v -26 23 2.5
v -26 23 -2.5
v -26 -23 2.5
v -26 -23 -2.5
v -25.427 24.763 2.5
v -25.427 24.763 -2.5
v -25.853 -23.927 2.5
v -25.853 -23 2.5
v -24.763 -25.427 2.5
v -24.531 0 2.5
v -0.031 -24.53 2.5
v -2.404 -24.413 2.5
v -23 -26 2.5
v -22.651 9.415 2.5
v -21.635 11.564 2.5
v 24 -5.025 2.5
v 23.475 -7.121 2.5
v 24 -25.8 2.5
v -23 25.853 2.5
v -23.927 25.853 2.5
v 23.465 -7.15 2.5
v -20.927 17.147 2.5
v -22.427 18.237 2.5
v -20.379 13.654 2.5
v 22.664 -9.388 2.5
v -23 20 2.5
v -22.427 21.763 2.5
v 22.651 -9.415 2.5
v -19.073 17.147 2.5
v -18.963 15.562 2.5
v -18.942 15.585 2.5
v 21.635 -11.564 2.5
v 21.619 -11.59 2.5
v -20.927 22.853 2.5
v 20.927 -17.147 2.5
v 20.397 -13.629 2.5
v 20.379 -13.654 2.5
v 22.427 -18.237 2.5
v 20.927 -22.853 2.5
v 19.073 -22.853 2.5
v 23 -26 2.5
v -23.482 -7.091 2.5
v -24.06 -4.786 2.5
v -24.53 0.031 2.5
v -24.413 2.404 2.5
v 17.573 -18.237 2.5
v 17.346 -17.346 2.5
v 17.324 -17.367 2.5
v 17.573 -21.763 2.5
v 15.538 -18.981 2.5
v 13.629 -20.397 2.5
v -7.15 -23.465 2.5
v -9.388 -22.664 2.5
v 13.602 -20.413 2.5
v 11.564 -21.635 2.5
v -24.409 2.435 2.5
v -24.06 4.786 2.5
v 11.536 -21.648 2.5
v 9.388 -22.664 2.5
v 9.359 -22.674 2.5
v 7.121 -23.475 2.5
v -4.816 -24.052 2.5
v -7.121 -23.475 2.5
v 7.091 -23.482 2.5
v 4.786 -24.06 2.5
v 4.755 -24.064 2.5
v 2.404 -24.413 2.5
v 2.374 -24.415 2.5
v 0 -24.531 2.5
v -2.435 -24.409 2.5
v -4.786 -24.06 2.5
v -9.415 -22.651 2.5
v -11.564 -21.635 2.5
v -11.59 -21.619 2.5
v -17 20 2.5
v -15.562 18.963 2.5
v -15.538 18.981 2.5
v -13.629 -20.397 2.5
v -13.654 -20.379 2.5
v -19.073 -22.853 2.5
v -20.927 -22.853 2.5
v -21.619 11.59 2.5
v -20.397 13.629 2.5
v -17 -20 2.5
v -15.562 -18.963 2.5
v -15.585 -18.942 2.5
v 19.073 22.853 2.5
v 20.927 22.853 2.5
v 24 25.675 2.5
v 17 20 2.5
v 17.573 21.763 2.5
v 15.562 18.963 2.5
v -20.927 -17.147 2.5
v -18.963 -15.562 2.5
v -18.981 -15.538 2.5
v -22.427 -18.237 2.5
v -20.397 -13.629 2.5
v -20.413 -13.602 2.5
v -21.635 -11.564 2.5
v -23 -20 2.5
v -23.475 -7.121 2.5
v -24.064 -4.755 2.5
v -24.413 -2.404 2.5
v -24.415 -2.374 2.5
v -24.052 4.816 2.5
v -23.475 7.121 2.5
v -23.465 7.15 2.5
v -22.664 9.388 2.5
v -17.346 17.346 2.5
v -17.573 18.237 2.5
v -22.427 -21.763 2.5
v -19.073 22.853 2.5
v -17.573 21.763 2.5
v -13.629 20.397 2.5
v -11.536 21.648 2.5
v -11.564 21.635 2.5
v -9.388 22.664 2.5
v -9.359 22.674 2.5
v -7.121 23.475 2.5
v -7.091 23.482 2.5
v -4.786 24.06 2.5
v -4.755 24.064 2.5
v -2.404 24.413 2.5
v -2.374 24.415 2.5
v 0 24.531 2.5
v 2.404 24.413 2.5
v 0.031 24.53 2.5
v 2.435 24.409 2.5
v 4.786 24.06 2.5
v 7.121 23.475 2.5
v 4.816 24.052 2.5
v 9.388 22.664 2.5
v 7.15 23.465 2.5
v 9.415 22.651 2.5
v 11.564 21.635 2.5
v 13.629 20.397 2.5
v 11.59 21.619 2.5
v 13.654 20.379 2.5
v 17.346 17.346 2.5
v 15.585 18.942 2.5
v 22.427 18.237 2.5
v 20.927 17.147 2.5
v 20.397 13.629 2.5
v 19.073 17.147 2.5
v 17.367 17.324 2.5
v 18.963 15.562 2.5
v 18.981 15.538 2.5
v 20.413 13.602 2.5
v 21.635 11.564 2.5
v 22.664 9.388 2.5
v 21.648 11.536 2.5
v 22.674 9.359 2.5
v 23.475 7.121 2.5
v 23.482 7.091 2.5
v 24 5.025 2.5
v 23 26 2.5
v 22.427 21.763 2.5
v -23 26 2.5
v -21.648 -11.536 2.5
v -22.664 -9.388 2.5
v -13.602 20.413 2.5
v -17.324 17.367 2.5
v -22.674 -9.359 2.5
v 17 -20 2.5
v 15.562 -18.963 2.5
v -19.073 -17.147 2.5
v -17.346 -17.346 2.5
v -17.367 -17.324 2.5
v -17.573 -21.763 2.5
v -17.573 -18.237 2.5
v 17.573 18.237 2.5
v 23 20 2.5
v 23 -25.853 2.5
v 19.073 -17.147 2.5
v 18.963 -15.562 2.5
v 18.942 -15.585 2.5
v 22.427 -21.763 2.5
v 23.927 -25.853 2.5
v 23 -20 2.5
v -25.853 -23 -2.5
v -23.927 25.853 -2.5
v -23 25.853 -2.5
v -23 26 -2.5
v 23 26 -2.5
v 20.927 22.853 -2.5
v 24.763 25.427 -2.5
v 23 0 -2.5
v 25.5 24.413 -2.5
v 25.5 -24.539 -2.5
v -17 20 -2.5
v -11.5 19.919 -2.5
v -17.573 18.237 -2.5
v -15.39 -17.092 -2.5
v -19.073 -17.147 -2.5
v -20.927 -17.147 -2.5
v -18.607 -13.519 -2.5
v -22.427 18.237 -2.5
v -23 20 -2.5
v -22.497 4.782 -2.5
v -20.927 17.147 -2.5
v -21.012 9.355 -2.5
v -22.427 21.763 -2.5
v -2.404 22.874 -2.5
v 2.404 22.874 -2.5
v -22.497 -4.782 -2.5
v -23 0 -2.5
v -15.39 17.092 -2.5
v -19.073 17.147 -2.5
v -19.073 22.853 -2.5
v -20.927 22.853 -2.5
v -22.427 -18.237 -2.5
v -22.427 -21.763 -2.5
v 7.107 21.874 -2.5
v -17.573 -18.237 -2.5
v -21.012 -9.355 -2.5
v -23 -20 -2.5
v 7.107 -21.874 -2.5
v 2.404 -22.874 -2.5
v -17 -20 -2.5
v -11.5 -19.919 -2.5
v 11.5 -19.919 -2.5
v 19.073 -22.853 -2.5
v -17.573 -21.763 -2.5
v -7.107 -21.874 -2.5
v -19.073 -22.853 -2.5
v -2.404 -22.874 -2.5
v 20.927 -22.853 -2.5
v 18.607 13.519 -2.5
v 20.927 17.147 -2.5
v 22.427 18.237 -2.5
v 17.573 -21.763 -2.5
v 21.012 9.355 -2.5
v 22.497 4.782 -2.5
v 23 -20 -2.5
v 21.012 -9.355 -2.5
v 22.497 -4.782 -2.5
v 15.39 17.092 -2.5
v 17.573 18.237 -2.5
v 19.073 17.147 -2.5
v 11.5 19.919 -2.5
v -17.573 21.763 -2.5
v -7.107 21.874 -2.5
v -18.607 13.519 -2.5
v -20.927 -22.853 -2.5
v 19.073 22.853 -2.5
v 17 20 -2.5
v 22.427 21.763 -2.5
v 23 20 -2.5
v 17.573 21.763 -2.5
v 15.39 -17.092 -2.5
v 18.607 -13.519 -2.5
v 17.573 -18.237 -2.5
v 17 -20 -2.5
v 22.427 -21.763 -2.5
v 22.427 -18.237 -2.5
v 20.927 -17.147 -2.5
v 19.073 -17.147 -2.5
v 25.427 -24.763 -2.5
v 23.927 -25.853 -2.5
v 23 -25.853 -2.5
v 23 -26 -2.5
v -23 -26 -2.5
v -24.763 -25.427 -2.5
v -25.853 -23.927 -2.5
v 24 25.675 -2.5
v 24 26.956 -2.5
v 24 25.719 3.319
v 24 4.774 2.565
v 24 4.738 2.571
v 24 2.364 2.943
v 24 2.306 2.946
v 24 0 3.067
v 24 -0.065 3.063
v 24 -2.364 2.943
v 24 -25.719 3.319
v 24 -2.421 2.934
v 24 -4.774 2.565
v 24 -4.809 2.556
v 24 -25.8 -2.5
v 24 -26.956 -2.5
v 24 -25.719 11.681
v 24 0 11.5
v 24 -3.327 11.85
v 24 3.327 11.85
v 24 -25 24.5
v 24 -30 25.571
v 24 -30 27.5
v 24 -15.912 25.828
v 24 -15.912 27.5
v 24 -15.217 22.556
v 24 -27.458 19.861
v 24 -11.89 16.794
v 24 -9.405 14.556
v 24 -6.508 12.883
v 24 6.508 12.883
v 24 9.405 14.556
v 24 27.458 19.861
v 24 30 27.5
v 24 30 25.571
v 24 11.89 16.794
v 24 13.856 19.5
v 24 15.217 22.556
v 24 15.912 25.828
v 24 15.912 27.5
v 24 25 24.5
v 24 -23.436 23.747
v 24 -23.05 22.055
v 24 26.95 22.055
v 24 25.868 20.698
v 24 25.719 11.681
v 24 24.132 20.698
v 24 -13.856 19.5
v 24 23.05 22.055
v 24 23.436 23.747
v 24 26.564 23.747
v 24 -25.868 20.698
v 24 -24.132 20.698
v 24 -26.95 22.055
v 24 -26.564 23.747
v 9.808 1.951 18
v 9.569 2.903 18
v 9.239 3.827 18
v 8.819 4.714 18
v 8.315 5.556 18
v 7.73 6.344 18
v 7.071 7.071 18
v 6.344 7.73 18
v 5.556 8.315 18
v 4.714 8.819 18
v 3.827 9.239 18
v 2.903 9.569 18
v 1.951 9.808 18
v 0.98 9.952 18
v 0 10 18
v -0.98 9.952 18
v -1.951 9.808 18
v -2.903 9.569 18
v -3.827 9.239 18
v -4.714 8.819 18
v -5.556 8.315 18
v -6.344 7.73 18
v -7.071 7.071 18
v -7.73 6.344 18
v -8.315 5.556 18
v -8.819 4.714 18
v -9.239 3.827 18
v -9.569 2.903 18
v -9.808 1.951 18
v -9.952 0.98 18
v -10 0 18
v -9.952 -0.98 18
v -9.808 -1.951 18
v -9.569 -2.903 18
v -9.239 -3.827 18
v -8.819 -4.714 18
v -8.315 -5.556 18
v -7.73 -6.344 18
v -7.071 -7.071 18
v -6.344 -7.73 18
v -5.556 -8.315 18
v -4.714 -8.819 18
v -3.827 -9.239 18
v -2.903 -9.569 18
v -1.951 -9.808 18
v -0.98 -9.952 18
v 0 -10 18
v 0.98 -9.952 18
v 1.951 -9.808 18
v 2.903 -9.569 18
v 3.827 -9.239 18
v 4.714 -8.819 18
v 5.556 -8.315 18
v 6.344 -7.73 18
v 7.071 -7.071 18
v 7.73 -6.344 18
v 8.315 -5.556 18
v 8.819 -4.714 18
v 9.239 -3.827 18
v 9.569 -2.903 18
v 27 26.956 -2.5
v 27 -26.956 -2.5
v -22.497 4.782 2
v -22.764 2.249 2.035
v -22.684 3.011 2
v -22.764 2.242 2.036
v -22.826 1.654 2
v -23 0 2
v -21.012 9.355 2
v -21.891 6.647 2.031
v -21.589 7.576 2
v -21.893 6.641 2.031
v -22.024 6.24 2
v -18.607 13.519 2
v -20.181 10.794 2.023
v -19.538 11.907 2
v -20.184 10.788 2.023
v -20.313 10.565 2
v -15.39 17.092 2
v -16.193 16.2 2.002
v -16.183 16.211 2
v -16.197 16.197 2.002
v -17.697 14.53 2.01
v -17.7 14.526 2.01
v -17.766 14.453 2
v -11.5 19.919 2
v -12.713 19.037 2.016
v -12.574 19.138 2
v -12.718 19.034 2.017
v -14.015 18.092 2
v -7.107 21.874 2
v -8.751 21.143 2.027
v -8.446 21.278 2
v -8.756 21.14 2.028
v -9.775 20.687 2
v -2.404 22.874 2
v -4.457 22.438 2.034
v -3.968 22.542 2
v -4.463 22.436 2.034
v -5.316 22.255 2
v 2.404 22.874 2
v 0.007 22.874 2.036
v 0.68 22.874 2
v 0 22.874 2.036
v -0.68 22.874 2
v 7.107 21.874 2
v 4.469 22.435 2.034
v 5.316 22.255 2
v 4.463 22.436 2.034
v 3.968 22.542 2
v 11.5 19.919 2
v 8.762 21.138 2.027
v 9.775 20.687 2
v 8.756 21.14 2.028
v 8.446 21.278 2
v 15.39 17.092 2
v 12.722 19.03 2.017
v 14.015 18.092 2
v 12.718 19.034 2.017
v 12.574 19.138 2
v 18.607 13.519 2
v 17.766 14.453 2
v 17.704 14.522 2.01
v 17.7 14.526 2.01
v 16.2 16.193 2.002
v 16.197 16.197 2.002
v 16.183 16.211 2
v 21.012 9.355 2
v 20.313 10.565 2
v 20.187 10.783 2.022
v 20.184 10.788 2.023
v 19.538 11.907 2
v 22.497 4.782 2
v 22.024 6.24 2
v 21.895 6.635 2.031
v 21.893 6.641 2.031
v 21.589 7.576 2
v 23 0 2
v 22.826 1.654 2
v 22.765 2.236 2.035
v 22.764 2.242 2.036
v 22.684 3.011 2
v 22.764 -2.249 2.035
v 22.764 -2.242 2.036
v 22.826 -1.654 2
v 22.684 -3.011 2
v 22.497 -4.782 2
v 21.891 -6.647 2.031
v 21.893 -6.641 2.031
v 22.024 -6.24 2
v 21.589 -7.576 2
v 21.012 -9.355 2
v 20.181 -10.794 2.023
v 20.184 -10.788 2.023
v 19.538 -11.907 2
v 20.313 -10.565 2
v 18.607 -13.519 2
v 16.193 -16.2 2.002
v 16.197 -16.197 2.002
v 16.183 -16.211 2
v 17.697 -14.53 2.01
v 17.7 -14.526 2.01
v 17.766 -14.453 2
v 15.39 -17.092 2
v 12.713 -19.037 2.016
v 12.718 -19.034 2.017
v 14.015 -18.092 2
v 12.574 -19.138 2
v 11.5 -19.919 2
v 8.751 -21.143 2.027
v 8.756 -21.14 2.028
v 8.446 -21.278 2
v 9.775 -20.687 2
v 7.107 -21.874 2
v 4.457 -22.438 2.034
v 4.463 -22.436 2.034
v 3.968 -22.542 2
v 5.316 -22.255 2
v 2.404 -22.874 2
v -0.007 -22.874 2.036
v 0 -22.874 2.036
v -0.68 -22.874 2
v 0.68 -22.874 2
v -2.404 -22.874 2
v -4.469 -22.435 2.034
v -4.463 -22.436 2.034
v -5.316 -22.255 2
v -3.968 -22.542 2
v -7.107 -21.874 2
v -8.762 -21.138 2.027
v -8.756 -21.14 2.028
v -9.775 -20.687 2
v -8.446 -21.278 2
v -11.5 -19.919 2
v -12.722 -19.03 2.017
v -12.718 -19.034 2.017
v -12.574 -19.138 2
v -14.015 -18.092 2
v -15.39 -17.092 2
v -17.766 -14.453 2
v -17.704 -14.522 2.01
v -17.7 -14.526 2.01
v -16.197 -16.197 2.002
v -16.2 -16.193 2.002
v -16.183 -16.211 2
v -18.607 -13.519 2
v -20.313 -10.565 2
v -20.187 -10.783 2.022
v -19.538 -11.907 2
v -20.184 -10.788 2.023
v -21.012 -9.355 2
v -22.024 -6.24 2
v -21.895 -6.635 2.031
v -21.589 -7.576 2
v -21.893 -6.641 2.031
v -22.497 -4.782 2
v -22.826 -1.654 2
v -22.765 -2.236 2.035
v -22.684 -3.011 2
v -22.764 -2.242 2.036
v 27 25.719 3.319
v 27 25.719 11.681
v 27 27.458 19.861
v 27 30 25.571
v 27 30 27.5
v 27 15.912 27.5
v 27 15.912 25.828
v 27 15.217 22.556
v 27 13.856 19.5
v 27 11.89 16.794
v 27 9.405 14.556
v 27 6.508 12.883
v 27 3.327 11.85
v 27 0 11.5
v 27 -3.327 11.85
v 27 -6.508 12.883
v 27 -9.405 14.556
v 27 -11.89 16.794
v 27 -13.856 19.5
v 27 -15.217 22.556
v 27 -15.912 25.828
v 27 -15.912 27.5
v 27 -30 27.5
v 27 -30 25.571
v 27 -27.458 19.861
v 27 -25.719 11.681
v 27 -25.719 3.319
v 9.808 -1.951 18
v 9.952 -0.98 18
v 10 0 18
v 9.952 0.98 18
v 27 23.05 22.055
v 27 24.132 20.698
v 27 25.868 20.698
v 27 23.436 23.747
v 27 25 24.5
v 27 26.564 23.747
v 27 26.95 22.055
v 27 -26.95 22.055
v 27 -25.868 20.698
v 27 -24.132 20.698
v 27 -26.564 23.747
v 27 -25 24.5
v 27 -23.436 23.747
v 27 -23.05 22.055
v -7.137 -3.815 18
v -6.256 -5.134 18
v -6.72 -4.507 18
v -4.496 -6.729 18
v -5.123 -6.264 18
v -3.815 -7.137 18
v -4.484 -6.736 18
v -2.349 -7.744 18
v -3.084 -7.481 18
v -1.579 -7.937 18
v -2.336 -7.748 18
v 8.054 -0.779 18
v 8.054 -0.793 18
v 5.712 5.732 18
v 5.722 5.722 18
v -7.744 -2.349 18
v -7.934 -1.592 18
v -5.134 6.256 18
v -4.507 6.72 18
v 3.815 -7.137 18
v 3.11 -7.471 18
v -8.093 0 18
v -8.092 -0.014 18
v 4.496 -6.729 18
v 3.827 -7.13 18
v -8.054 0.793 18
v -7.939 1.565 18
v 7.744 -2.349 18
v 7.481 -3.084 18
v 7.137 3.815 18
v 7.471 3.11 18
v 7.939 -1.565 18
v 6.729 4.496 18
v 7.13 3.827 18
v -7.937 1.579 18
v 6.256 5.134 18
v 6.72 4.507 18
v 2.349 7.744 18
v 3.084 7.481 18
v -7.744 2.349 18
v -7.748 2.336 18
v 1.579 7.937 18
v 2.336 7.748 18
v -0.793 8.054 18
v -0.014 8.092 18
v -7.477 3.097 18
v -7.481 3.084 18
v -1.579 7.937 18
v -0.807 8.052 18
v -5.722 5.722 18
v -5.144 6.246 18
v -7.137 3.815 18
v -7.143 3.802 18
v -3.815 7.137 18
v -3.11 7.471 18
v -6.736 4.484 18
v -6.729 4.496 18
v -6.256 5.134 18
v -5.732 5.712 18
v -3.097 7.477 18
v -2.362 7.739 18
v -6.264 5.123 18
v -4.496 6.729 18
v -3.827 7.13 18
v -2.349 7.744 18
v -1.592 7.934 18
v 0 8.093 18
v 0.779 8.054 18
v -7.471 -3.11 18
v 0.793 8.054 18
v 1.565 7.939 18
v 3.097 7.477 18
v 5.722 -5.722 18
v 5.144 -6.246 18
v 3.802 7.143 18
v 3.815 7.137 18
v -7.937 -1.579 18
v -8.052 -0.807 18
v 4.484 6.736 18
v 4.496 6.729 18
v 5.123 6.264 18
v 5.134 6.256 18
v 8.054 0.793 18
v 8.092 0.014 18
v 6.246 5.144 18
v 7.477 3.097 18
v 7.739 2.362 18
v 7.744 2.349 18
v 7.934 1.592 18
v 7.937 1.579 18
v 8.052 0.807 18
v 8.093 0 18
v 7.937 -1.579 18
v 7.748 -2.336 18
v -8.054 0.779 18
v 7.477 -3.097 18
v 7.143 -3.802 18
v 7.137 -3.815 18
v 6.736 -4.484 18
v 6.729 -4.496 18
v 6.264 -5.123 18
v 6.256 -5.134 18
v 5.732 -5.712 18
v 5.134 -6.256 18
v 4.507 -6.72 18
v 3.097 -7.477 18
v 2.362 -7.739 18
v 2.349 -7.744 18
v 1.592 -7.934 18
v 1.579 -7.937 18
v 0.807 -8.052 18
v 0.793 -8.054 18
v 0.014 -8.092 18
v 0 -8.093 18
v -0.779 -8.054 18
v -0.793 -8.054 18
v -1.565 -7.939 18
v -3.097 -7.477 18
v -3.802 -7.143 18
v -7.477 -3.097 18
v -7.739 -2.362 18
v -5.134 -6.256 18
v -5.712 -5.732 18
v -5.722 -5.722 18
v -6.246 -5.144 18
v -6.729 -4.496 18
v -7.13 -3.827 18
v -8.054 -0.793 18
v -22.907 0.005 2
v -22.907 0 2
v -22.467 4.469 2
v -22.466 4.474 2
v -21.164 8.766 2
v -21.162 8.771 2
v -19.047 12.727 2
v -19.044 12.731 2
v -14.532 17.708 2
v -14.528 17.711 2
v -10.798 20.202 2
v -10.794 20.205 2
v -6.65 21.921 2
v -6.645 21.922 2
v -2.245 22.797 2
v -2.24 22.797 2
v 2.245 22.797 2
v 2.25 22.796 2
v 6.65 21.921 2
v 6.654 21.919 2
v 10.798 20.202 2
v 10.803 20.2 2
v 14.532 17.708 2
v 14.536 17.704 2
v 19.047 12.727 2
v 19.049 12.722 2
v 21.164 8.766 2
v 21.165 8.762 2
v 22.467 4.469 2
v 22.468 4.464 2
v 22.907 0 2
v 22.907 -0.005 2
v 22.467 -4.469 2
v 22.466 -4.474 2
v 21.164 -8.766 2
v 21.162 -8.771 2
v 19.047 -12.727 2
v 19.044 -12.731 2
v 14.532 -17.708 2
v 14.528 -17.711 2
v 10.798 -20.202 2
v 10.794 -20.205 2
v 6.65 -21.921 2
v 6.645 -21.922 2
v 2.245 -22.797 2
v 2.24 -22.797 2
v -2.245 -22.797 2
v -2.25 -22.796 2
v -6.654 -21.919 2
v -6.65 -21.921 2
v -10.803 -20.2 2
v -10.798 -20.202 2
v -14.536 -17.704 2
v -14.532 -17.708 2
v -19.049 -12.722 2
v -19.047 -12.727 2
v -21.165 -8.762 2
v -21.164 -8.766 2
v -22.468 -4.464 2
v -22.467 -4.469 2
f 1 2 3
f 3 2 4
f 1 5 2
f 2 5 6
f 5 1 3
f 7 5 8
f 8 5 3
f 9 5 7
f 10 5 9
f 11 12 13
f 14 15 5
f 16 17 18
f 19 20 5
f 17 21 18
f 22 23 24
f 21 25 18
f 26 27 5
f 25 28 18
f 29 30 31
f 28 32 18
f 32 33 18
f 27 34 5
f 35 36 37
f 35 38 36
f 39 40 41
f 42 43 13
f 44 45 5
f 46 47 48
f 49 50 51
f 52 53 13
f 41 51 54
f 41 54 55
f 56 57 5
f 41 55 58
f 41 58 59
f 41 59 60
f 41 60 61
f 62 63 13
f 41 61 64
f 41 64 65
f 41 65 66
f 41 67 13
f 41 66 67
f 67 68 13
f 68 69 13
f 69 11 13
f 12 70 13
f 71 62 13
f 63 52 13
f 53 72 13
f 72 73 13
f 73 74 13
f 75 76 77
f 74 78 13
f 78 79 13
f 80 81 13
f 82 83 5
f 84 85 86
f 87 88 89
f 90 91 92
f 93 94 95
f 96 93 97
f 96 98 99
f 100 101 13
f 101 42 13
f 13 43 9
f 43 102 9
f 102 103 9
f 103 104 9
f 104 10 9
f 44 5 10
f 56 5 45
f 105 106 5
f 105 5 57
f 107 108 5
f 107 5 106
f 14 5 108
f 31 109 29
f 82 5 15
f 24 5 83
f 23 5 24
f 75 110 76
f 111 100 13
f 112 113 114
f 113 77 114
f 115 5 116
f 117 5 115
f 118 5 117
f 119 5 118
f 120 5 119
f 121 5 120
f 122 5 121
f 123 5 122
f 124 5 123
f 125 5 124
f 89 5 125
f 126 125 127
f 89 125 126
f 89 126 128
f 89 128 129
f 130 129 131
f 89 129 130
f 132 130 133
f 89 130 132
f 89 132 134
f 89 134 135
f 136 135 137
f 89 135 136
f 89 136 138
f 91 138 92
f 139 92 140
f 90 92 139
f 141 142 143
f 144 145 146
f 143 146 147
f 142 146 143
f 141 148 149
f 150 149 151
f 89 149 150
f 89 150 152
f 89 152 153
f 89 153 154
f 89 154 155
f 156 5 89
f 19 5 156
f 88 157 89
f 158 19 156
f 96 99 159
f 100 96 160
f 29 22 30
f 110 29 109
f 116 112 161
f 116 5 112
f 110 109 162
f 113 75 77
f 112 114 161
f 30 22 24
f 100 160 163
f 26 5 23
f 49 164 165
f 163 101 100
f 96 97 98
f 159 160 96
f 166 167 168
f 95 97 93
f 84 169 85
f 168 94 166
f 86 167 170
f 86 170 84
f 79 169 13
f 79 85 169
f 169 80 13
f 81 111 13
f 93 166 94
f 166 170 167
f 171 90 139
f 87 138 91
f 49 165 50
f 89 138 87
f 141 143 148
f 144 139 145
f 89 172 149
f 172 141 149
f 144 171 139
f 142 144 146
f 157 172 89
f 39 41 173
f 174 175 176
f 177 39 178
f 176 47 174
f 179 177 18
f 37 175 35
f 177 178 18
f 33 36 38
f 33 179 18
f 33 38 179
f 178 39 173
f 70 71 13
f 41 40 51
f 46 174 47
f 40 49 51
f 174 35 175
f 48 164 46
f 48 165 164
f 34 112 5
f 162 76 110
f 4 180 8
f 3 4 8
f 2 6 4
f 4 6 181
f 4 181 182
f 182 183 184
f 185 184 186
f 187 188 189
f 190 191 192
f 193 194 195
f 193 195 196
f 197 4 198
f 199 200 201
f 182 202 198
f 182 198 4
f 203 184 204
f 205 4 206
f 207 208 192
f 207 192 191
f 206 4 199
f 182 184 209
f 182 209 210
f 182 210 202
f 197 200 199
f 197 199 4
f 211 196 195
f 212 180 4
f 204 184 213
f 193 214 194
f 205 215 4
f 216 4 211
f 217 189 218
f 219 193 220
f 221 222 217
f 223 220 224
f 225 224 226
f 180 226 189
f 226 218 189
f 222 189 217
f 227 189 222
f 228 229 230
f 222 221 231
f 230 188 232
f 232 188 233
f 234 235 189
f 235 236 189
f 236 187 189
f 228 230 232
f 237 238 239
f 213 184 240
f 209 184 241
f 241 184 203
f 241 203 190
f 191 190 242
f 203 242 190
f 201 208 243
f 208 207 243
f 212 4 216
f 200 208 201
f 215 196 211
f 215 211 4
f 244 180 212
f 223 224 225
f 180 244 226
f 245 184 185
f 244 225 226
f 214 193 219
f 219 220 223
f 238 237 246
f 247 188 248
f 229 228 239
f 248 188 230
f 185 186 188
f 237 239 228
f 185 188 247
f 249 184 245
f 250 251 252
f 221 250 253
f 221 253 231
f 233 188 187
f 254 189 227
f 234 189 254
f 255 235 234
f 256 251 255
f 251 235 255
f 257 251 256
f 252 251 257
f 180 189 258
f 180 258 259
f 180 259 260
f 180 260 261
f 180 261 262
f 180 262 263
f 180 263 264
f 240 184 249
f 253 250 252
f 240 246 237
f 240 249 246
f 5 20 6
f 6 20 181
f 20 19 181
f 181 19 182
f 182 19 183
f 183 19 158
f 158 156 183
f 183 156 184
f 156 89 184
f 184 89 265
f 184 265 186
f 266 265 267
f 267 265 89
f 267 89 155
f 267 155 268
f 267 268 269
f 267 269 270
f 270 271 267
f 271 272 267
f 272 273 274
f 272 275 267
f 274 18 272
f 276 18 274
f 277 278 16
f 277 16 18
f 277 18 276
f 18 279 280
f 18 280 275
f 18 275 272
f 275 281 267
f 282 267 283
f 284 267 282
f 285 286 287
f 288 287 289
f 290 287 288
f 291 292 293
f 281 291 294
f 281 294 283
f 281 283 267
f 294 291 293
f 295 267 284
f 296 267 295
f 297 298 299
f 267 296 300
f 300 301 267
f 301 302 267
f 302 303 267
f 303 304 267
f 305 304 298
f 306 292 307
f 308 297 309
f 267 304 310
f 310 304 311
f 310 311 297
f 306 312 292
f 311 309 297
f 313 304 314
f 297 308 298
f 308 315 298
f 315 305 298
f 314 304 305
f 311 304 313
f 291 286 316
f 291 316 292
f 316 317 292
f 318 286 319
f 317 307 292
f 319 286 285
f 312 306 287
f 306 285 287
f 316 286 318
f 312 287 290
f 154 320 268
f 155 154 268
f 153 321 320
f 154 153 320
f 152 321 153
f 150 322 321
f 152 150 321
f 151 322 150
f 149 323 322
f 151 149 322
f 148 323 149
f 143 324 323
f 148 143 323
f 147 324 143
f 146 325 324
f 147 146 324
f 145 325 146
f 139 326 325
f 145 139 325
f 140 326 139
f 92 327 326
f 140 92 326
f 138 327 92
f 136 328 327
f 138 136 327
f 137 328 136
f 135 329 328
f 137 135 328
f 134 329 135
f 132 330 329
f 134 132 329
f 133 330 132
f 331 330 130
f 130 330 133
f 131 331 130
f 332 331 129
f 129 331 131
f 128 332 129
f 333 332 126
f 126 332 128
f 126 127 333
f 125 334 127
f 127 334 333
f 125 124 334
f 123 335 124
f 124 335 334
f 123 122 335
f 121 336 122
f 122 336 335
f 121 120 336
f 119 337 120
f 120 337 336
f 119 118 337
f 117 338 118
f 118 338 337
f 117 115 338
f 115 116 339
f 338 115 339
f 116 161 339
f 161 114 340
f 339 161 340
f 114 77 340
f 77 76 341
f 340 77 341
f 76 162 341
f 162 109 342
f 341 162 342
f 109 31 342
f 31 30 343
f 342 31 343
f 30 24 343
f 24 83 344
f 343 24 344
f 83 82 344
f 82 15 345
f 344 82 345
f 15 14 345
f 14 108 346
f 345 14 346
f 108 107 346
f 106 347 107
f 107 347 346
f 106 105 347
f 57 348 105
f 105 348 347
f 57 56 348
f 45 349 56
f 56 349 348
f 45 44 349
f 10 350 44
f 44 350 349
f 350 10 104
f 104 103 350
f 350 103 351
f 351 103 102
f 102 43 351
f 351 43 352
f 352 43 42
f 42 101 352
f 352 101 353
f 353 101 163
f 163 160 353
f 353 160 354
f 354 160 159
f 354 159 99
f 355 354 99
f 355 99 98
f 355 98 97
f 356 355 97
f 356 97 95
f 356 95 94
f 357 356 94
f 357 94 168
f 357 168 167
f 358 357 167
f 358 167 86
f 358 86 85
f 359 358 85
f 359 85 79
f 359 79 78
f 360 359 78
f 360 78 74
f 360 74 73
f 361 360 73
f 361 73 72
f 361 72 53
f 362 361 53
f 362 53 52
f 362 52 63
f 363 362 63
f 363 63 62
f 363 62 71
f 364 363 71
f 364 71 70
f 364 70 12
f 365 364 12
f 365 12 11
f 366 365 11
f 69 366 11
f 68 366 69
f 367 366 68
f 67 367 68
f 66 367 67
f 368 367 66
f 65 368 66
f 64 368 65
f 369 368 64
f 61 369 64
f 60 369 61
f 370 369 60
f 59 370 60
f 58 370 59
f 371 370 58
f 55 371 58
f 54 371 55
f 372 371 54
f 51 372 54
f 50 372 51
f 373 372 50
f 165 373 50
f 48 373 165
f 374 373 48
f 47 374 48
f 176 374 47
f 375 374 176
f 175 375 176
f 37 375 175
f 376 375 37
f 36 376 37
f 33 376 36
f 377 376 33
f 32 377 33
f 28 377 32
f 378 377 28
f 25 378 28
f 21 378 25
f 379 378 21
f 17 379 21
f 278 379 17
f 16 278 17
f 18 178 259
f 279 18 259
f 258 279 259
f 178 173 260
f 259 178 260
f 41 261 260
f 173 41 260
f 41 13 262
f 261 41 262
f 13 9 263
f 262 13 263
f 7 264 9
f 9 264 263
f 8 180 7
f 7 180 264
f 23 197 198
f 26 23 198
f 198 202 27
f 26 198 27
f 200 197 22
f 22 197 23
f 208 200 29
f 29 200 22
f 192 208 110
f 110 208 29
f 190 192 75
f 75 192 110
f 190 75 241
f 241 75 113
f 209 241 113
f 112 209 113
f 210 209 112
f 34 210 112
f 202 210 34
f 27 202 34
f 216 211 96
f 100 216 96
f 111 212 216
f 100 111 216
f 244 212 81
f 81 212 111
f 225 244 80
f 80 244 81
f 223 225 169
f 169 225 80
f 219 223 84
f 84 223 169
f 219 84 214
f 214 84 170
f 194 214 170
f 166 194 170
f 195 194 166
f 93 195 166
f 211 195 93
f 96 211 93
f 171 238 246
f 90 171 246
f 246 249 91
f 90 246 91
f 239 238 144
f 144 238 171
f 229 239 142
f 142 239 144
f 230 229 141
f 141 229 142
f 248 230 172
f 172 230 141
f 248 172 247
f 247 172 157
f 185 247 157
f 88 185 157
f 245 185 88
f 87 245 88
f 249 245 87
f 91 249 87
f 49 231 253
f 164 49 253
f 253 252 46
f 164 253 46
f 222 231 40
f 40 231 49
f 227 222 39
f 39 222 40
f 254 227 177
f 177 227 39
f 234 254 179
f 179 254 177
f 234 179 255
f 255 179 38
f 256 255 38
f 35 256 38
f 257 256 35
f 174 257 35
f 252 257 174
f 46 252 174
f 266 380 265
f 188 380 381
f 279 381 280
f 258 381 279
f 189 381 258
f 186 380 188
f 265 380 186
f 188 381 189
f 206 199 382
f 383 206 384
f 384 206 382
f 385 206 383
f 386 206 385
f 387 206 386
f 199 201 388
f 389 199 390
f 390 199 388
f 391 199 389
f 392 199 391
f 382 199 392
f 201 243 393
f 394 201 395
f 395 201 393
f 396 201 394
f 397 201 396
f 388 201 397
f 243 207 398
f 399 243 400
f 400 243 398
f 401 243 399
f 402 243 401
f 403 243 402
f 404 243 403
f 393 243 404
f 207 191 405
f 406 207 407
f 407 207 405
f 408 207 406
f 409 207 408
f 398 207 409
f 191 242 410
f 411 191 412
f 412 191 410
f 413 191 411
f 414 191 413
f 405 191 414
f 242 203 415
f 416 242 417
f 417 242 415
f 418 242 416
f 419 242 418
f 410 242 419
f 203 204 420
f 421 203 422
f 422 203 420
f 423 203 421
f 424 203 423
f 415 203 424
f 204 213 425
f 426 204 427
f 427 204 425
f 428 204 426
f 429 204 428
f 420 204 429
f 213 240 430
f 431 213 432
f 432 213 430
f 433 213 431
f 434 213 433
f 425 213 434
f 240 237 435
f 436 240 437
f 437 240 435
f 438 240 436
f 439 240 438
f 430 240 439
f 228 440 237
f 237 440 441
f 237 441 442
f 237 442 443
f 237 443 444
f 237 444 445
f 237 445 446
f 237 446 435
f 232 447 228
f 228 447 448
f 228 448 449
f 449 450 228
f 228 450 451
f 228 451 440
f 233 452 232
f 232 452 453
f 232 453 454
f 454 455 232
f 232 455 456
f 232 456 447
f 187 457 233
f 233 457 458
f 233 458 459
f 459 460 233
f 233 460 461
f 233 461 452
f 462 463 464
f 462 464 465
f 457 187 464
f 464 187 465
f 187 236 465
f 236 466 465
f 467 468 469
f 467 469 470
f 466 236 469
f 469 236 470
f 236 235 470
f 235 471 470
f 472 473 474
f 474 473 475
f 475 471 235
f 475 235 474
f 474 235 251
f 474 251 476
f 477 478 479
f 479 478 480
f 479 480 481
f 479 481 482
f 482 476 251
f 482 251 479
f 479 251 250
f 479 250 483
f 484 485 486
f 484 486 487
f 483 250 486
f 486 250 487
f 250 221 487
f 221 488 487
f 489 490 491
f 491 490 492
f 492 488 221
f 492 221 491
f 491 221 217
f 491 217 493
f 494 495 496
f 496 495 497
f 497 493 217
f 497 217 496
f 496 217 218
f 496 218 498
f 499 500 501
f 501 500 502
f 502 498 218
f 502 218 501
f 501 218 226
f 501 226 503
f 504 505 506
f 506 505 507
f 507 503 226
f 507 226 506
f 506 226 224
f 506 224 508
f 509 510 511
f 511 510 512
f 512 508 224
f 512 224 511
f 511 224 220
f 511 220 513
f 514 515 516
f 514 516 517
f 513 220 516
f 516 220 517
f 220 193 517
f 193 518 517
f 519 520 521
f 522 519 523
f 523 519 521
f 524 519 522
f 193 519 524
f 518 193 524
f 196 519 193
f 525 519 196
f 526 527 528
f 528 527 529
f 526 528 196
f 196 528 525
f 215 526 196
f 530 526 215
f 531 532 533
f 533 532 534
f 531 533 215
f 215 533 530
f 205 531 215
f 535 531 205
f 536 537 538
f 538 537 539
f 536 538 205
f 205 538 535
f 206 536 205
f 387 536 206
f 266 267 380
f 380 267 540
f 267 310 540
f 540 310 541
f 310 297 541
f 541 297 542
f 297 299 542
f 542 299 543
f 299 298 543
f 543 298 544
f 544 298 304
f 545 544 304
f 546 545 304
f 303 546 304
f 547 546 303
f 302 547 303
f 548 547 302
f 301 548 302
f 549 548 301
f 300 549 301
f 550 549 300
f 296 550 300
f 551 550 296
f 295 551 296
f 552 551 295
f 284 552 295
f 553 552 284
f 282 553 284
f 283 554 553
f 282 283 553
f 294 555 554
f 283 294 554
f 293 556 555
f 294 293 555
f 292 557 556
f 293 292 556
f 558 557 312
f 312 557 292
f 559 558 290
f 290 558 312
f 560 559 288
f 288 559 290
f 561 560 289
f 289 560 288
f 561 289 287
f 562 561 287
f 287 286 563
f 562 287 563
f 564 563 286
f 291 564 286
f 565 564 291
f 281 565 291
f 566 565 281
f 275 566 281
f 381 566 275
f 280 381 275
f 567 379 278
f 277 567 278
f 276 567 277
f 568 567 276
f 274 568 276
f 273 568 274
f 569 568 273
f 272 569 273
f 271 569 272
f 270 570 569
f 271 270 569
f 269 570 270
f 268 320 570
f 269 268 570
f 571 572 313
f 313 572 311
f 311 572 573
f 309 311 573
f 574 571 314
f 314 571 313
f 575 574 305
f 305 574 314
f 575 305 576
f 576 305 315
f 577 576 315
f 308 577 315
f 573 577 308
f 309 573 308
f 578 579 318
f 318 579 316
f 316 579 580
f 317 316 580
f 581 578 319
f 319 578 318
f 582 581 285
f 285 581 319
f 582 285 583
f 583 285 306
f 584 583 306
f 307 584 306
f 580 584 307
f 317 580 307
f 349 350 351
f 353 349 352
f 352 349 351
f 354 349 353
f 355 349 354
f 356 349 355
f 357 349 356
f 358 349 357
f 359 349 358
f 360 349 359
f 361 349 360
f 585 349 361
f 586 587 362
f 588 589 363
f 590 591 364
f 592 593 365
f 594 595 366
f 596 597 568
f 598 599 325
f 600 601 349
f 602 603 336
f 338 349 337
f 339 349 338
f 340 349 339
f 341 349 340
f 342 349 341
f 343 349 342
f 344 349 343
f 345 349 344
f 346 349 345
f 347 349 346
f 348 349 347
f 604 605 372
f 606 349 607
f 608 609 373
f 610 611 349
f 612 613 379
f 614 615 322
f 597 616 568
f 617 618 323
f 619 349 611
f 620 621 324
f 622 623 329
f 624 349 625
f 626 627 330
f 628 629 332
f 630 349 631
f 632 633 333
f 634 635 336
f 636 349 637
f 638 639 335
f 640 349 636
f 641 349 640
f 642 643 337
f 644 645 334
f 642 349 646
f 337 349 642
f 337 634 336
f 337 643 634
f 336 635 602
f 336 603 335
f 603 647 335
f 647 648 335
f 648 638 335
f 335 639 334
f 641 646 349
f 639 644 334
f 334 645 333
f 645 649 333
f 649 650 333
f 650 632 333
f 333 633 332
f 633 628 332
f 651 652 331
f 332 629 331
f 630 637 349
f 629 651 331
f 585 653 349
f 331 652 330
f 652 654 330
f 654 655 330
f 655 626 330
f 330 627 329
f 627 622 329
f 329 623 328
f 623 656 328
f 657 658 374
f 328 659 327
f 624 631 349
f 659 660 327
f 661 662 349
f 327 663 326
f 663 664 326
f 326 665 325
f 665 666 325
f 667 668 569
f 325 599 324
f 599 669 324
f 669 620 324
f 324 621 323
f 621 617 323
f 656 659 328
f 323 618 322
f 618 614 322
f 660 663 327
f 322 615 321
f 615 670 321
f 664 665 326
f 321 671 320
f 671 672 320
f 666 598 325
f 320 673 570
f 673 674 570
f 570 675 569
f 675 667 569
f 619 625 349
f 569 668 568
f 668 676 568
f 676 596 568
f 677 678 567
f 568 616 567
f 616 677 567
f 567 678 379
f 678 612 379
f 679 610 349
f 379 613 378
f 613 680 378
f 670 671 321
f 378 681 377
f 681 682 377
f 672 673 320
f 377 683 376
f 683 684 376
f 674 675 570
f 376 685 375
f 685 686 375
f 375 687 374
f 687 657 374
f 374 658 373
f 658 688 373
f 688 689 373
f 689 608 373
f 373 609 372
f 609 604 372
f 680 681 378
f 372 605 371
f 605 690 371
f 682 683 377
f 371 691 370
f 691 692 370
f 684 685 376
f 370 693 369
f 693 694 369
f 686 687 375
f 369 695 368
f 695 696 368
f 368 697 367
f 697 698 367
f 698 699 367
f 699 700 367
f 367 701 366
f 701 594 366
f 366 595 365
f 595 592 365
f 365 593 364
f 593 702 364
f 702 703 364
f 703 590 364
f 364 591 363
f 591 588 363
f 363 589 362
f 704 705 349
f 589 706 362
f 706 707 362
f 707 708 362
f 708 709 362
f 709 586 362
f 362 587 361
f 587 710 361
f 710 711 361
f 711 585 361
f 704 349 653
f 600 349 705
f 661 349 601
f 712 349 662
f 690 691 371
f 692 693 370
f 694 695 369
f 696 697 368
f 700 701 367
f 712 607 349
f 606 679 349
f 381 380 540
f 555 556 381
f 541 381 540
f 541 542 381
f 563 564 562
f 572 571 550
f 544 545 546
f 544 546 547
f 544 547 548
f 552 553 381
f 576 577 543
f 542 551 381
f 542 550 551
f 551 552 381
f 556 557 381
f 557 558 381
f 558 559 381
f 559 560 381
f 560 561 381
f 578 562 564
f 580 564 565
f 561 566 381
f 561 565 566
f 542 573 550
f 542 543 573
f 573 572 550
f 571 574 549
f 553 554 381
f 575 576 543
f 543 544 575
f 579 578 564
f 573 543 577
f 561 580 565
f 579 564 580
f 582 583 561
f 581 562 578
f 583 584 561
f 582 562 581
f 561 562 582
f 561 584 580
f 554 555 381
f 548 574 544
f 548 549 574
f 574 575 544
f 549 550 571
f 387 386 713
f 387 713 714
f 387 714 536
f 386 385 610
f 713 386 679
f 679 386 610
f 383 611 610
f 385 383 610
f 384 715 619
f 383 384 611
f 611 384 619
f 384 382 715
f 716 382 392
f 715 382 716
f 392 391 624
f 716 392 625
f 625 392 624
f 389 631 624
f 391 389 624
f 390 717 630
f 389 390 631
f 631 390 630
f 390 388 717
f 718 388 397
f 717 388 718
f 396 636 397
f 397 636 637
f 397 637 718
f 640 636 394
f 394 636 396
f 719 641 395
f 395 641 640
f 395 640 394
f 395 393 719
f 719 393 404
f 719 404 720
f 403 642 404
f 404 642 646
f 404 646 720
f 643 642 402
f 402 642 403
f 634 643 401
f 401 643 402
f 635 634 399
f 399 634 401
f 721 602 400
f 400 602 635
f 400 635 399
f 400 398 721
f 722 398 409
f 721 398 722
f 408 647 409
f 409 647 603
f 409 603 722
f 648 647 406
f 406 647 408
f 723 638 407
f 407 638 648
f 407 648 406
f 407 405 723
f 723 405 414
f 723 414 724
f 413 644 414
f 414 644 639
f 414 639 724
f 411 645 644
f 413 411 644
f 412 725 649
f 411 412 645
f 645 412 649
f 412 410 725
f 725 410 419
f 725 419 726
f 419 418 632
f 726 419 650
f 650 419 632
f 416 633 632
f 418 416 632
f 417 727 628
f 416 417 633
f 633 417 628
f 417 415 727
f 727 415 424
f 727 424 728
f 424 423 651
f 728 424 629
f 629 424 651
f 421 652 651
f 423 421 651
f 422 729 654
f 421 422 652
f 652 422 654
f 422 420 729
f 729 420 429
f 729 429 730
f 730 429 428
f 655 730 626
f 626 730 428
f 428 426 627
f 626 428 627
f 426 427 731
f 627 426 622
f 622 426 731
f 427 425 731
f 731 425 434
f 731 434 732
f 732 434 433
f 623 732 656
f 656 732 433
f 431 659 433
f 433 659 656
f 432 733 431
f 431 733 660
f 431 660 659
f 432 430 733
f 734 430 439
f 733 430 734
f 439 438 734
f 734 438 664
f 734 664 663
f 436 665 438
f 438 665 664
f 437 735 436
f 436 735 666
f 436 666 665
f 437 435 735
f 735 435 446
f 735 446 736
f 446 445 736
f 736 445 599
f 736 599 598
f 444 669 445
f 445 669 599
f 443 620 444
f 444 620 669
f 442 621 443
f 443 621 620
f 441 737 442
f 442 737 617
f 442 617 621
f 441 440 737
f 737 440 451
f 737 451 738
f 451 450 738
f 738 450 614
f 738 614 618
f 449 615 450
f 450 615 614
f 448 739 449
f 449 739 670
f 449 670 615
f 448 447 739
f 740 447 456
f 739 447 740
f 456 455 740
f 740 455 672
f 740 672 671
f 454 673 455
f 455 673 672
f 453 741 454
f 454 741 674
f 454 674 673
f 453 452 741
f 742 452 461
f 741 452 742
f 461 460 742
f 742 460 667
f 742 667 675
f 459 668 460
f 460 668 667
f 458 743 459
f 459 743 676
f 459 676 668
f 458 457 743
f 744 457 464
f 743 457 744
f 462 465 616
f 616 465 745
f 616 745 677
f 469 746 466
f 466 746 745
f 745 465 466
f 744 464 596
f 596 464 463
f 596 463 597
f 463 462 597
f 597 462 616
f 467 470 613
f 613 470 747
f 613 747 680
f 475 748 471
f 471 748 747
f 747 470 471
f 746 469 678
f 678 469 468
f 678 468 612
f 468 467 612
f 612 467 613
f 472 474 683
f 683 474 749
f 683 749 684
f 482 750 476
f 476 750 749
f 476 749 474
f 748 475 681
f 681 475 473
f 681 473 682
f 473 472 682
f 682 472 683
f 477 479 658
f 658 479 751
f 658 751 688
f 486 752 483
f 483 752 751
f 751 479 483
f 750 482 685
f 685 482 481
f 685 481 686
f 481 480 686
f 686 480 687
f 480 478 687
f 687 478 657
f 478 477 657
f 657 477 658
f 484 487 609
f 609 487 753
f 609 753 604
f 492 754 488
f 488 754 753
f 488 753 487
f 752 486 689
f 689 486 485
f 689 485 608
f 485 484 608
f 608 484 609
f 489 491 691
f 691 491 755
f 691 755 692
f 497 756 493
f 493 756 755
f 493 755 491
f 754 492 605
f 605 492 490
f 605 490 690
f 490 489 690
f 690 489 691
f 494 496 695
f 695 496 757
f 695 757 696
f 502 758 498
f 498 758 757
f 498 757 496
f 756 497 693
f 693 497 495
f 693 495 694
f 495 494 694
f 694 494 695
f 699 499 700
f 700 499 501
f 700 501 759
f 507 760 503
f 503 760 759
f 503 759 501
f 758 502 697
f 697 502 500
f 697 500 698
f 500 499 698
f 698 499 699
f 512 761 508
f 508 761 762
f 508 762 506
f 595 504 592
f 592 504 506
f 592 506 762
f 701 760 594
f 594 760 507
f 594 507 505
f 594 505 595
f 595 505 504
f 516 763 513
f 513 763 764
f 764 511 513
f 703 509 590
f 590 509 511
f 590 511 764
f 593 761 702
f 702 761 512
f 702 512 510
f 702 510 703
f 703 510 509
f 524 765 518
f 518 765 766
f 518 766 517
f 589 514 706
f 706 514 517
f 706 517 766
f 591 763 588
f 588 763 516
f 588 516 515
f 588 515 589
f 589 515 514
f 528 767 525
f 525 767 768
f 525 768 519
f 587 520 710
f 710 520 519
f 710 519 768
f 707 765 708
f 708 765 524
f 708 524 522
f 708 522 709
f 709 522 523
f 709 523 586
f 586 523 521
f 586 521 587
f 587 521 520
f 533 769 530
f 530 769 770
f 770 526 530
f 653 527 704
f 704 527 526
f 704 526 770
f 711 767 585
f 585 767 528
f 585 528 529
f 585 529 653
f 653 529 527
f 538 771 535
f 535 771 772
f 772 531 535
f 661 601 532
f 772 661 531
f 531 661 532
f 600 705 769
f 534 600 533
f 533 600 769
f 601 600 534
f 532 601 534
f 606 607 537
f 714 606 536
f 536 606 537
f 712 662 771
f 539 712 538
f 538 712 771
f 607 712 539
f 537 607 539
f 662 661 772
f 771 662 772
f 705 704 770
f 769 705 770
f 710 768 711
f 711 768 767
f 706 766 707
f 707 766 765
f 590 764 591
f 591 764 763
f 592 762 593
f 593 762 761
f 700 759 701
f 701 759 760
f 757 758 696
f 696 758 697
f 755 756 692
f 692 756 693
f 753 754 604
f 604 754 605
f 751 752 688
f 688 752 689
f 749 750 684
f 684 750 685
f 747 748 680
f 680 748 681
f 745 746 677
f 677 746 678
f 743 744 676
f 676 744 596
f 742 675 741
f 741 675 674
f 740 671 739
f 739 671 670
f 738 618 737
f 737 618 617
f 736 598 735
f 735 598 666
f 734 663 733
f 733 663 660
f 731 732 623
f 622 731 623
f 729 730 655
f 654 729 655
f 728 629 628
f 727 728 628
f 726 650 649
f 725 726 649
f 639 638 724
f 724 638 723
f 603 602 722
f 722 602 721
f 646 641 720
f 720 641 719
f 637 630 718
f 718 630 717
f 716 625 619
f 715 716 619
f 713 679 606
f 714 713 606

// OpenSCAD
// file: inc/functions.scad
// PRUSA iteration3
// Functions used in many files
// GNU GPL v3
// Josef Průša <josefprusa@me.com>
// Václav 'ax' Hůla <axtheb@gmail.com>
// Vlnofka <>
// http://www.reprap.org/wiki/Prusa_Mendel
// http://github.com/prusajr/PrusaMendel

module roundcorner(diameter){
	difference(){
		cube(size = [diameter,diameter,99], center = false);
		translate(v = [diameter, diameter, 0]) cylinder(h = 100, r=diameter, center=true);
	}
}
module nut(d,h,horizontal=true){
    cornerdiameter =  (d / 2) / cos (180 / 6);
    cylinder(h = h, r = cornerdiameter, $fn = 6);
    if(horizontal){
        for(i = [1:6]){
            rotate([0,0,60*i]) translate([-cornerdiameter-0.2,0,0]) rotate([0,0,-45]) cube([2,2,h]);
        }
    }
}

// Based on nophead research
module polyhole(d, h, center=false) {
    n = max(round(2 * d),3);
    rotate([0,0,180])
        cylinder(h = h, r = (d / 2) / cos (180 / n), $fn = n);
}

// make it interchangeable between this and cylinder
module cylinder_poly(r, h, center=false){
    polyhole(d=r*2, h=h, center=center);
}

module fillet(radius, height=100, $fn=0) {
    //this creates acutal fillet
    translate([-radius, -radius, -height/2-0.01])
        difference() {
            cube([radius*2, radius*2, height+0.02]);
            cylinder(r=radius, h=height+0.02, $fn=$fn);
        }
}

module cube_fillet(size, radius=-1, vertical=[3,3,3,3], top=[0,0,0,0], bottom=[0,0,0,0], center=false, $fn=0){
    //
    if (center) {
        cube_fillet_inside(size, radius, vertical, top, bottom, $fn);
    } else {
        translate([size[0]/2, size[1]/2, size[2]/2])
            cube_fillet_inside(size, radius, vertical, top, bottom, $fn);
    }
}

module cube_negative_fillet(size, radius=-1, vertical=[3,3,3,3], top=[0,0,0,0], bottom=[0,0,0,0], $fn=0){

    j=[1,0,1,0];

    for (i=[0:3]) {
        if (radius > -1) {
            rotate([0, 0, 90*i]) translate([size[1-j[i]]/2, size[j[i]]/2, 0]) fillet(radius, size[2], $fn=$fn);
        } else {
            rotate([0, 0, 90*i]) translate([size[1-j[i]]/2, size[j[i]]/2, 0]) fillet(vertical[i], size[2], $fn=$fn);
        }
        rotate([90*i, -90, 0]) translate([size[2]/2, size[j[i]]/2, 0 ]) fillet(top[i], size[1-j[i]], $fn=$fn);
        rotate([90*(4-i), 90, 0]) translate([size[2]/2, size[j[i]]/2, 0]) fillet(bottom[i], size[1-j[i]], $fn=$fn);

    }
}

module cube_fillet_inside(size, radius=-1, vertical=[3,3,3,3], top=[0,0,0,0], bottom=[0,0,0,0], $fn=0){
    //makes CENTERED cube with round corners
    // if you give it radius, it will fillet vertical corners.
    //othervise use vertical, top, bottom arrays
    //when viewed from top, it starts in upper right corner (+x,+y quadrant) , goes counterclockwise
    //top/bottom fillet starts in direction of Y axis and goes CCW too


    if (radius == 0) {
        cube(size, center=true);
    } else {
        difference() {
            cube(size, center=true);
            cube_negative_fillet(size, radius, vertical, top, bottom, $fn);
        }
    }
}


module nema17(places=[1,1,1,1], size=15.5, h=10, holes=false, shadow=false, $fn=24){
    for (i=[0:3]) {
        if (places[i] == 1) {
            rotate([0, 0, 90*i]) translate([size, size, 0]) {
                if (holes) {
                    #rotate([0, 0, -90*i])  translate([0,0,-10]) screw(r=1.7, slant=false, head_drop=13, $fn=$fn, h=h+12);
                } else {
                    rotate([0, 0, -90*i]) cylinder(h=h, r=5.5, $fn=$fn);
                }
            }
        }
    }
    if (shadow != false) {
        %translate ([0, 0, shadow+21+3]) cube([42,42,42], center = true);
    //flange
        %translate ([0, 0, shadow+21+3-21-1]) cylinder(r=11,h=2, center = true, $fn=20);
    //shaft
        %translate ([0, 0, shadow+21+3-21-7]) cylinder(r=2.5,h=14, center = true);
    }
}

module screw(h=20, r=2, r_head=3.5, head_drop=0, slant=true, poly=false, $fn=0){
    //makes screw with head
    //for substraction as screw hole
    if (poly) {
        cylinder_poly(h=h, r=r, $fn=$fn);
    } else {
        cylinder(h=h, r=r, $fn=$fn);
    }
    if (slant) {
        translate([0, 0, head_drop-0.01]) cylinder(h=r_head, r2=0, r1=r_head, $fn=$fn);
    }

    if (head_drop > 0) {
        translate([0, 0, -0.01]) cylinder(h=head_drop+0.01, r=r_head, $fn=$fn);
    }
}
module screw_cylinder(r_head=5.25,r=3.25,head_drop=6.2,slant=false){
	screw(r_head=r_head,head_drop=head_drop,r=r, slant=slant);

}

//screw_cylinder();
//cube_fillet([10,20,30], vertical=[3,2,0,0], top=[3,2,0,5], bottom=[3,2,0,5]);
//cube_fillet([10,20,30], radius=2, top=[7,2,7,2]);
// file: inc/metric.scad
// PRUSA iteration3
// Default metric sizes
// GNU GPL v3
// Josef Průša <josefprusa@me.com>
// http://www.reprap.org/wiki/Prusa_Mendel
// http://github.com/prusajr/PrusaMendel

// DONT CHANGE THIS FILE! ALTER VALUES IN CONFIGURATION.SCAD INSTEAD

// RODS

threaded_rod_diameter = 8.7;
threaded_rod_diameter_horizontal = 8.7;
smooth_bar_diameter = 8;
smooth_bar_diameter_horizontal = 8.8;

// Nuts and bolts

m8_diameter = 9;
m8_nut_diameter = 14.1;

m4_diameter = 4.5;
m4_nut_diameter = 9;

m3_diameter = 3.6;
m3_nut_diameter = 5.3;
m3_nut_diameter_horizontal = 6.1;

// Bushing holder

bushing_core_diameter = smooth_bar_diameter;
bushing_material_thickness = 1;

// Motors

motor_shaft = 5.5;
// file: configuration.scad
// PRUSA iteration3
// Configuration file
// GNU GPL v3
// Josef Průša <josefprusa@me.com>
// Václav 'ax' Hůla <axtheb@gmail.com>
// http://www.reprap.org/wiki/Prusa_Mendel
// http://github.com/prusajr/PrusaMendel

// PLEASE SELECT ONE OF THE CONFIGURATIONS BELOW
// BY UN-COMMENTING IT

// Uncomment for metric settings
// METRIC METRIC METRIC METRIC METRIC METRIC METRIC METRIC 

include <inc/metric.scad>;

// Custom settings here, tailor to your supplies and print settings

// Select your belt type ******************************************************

//T2.5
//belt_tooth_distance = 2.5;
//belt_tooth_ratio = 0.5;

//T5 (strongly discouraged)
belt_tooth_distance = 5;
belt_tooth_ratio = 0.75;

//HTD3
//belt_tooth_distance = 3;
//belt_tooth_ratio = 0.75;

//MXL
//belt_tooth_distance = 2.032;
//belt_tooth_ratio = 0.64;

// Choose bearing/bushing configuration ***************************************

//Choose from:

// 0 = Z as lm[e]8uu, X and Y bushings
// 1 = all bushings
// 2 = all bearings [default. Do not change unless you really know what you are doing]
// DO NOT OFFER 0 or 1 VARIANTS FOR SALE. We really mean that. In the long run it hurts everyone.

bearing_choice = 2;

// Bushing version
// 0 = square igus housings. By igus we mean JFM-0810-10 or GFM-0810-10
// 1 = round igus (works better if printed precisely)
// 2 = bronze self-aligning bushings
bushing_type = 0;

//Bearing version
// 0 = default lm8uu
// 1 = lme8uu
bearing_type = 0;

// Select idler bearing size **************************************************

// 0 = 608 [standard skate bearings]
// 1 = 624 [roughly same diameter as pulley, makes belt parallel so its prettier]

idler_bearing = 0;

// Thickness of the XZ plate board
board_thickness = 12;

//Layer height * width over thickness. Used for idler sleeve
single_wall_width = 0.3*2.2;

// END of custom settings


// You are not supposed to change this
board_to_xz_distance = 26;
xaxis_rod_distance = 45;
carriage_l = 74;
carriage_hole_to_side = 5;
carriage_hole_height = 4;

//calculated from settings

idler_size = (idler_bearing == 0) ? 22 : 13;

//use 4.5 for 608, 2.5 for 624
idler_size_inner_r = (idler_bearing == 0) ? 4.5 : 2.5;

idler_width = (idler_bearing == 0) ? 9 : 5;

// CHANGE ONLY THE STUFF YOU KNOW
// IT WILL REPLACE DEFAULT SETTING

// RODS

// threaded_rod_diameter = 0;
// threaded_rod_diameter_horizontal = 0;
// smooth_bar_diameter = 0;
// smooth_bar_diameter_horizontal = 0;

// Nuts and bolts

// m8_diameter = 0;
// m8_nut_diameter = 0;

// m4_diameter = 0;
// m4_nut_diameter = 0;

// m3_diameter = 0;
// m3_nut_diameter = 0;

// Bushing holder

// bushing_core_diameter = smooth_bar_diameter;
// bushing_material_thickness = 0;

///counted stuff
m3_nut_diameter_bigger = ((m3_nut_diameter  / 2) / cos (180 / 6))*2;

// functions
include <inc/functions.scad>


// These constants define the geometry of the complete-printer.scad

//x_smooth_rod_length=325;
//y_smooth_rod_length=405;
//z_smooth_rod_length=235;
bed_x_size=225;
bed_y_size=225;

x_smooth_rod_length=450+board_thickness*2+10; // 492 for 16mm thickness; 484 for 12mm thickness
y_smooth_rod_length=470;
z_smooth_rod_length=405;  
bed_x_size=225;
bed_y_size=225;
// main file
include <configuration.scad>
thickness=5;
rotate([180,0,0])fan_mount();

//fan_support();

module fan_support(){
	difference(){
		cube([30,60,3],center=true);
		for(x=[-1,1]){
			translate([10,x*25,-3])cylinder(r=2,h=10);
		}
		translate([15,0,-3])cylinder(r=16,h=10);
		translate([-5,65.5,-3])cylinder(r=40,h=10);
	mirror([0,1,0])translate([-5,65.5,-3])cylinder(r=40,h=10);
	}
	
}

module fan_mount(){
	difference(){
		cube_fillet([52,52,thickness],center=true);
		translate([0,0,-thickness/2-0.1])cylinder(r=23,h=5.2);
		for(x=[-1,1]){
			for(y=[-1,1]){
				translate([x*20,y*20,-thickness/2-0.1])cylinder(r=3,h=5.2);
			}
		}
	}
	difference(){
		translate([0,0,-2])rotate([180,0,0])cylinder(r1=25,r2=10,h=16,$fn=64);
		translate([0,0,-1.9])rotate([180,0,0])cylinder(r1=23,r2=8,h=16.2,$fn=64);
	}
	translate([25.5,0,-12.5])rotate([0,90,0])fan_support();
}
